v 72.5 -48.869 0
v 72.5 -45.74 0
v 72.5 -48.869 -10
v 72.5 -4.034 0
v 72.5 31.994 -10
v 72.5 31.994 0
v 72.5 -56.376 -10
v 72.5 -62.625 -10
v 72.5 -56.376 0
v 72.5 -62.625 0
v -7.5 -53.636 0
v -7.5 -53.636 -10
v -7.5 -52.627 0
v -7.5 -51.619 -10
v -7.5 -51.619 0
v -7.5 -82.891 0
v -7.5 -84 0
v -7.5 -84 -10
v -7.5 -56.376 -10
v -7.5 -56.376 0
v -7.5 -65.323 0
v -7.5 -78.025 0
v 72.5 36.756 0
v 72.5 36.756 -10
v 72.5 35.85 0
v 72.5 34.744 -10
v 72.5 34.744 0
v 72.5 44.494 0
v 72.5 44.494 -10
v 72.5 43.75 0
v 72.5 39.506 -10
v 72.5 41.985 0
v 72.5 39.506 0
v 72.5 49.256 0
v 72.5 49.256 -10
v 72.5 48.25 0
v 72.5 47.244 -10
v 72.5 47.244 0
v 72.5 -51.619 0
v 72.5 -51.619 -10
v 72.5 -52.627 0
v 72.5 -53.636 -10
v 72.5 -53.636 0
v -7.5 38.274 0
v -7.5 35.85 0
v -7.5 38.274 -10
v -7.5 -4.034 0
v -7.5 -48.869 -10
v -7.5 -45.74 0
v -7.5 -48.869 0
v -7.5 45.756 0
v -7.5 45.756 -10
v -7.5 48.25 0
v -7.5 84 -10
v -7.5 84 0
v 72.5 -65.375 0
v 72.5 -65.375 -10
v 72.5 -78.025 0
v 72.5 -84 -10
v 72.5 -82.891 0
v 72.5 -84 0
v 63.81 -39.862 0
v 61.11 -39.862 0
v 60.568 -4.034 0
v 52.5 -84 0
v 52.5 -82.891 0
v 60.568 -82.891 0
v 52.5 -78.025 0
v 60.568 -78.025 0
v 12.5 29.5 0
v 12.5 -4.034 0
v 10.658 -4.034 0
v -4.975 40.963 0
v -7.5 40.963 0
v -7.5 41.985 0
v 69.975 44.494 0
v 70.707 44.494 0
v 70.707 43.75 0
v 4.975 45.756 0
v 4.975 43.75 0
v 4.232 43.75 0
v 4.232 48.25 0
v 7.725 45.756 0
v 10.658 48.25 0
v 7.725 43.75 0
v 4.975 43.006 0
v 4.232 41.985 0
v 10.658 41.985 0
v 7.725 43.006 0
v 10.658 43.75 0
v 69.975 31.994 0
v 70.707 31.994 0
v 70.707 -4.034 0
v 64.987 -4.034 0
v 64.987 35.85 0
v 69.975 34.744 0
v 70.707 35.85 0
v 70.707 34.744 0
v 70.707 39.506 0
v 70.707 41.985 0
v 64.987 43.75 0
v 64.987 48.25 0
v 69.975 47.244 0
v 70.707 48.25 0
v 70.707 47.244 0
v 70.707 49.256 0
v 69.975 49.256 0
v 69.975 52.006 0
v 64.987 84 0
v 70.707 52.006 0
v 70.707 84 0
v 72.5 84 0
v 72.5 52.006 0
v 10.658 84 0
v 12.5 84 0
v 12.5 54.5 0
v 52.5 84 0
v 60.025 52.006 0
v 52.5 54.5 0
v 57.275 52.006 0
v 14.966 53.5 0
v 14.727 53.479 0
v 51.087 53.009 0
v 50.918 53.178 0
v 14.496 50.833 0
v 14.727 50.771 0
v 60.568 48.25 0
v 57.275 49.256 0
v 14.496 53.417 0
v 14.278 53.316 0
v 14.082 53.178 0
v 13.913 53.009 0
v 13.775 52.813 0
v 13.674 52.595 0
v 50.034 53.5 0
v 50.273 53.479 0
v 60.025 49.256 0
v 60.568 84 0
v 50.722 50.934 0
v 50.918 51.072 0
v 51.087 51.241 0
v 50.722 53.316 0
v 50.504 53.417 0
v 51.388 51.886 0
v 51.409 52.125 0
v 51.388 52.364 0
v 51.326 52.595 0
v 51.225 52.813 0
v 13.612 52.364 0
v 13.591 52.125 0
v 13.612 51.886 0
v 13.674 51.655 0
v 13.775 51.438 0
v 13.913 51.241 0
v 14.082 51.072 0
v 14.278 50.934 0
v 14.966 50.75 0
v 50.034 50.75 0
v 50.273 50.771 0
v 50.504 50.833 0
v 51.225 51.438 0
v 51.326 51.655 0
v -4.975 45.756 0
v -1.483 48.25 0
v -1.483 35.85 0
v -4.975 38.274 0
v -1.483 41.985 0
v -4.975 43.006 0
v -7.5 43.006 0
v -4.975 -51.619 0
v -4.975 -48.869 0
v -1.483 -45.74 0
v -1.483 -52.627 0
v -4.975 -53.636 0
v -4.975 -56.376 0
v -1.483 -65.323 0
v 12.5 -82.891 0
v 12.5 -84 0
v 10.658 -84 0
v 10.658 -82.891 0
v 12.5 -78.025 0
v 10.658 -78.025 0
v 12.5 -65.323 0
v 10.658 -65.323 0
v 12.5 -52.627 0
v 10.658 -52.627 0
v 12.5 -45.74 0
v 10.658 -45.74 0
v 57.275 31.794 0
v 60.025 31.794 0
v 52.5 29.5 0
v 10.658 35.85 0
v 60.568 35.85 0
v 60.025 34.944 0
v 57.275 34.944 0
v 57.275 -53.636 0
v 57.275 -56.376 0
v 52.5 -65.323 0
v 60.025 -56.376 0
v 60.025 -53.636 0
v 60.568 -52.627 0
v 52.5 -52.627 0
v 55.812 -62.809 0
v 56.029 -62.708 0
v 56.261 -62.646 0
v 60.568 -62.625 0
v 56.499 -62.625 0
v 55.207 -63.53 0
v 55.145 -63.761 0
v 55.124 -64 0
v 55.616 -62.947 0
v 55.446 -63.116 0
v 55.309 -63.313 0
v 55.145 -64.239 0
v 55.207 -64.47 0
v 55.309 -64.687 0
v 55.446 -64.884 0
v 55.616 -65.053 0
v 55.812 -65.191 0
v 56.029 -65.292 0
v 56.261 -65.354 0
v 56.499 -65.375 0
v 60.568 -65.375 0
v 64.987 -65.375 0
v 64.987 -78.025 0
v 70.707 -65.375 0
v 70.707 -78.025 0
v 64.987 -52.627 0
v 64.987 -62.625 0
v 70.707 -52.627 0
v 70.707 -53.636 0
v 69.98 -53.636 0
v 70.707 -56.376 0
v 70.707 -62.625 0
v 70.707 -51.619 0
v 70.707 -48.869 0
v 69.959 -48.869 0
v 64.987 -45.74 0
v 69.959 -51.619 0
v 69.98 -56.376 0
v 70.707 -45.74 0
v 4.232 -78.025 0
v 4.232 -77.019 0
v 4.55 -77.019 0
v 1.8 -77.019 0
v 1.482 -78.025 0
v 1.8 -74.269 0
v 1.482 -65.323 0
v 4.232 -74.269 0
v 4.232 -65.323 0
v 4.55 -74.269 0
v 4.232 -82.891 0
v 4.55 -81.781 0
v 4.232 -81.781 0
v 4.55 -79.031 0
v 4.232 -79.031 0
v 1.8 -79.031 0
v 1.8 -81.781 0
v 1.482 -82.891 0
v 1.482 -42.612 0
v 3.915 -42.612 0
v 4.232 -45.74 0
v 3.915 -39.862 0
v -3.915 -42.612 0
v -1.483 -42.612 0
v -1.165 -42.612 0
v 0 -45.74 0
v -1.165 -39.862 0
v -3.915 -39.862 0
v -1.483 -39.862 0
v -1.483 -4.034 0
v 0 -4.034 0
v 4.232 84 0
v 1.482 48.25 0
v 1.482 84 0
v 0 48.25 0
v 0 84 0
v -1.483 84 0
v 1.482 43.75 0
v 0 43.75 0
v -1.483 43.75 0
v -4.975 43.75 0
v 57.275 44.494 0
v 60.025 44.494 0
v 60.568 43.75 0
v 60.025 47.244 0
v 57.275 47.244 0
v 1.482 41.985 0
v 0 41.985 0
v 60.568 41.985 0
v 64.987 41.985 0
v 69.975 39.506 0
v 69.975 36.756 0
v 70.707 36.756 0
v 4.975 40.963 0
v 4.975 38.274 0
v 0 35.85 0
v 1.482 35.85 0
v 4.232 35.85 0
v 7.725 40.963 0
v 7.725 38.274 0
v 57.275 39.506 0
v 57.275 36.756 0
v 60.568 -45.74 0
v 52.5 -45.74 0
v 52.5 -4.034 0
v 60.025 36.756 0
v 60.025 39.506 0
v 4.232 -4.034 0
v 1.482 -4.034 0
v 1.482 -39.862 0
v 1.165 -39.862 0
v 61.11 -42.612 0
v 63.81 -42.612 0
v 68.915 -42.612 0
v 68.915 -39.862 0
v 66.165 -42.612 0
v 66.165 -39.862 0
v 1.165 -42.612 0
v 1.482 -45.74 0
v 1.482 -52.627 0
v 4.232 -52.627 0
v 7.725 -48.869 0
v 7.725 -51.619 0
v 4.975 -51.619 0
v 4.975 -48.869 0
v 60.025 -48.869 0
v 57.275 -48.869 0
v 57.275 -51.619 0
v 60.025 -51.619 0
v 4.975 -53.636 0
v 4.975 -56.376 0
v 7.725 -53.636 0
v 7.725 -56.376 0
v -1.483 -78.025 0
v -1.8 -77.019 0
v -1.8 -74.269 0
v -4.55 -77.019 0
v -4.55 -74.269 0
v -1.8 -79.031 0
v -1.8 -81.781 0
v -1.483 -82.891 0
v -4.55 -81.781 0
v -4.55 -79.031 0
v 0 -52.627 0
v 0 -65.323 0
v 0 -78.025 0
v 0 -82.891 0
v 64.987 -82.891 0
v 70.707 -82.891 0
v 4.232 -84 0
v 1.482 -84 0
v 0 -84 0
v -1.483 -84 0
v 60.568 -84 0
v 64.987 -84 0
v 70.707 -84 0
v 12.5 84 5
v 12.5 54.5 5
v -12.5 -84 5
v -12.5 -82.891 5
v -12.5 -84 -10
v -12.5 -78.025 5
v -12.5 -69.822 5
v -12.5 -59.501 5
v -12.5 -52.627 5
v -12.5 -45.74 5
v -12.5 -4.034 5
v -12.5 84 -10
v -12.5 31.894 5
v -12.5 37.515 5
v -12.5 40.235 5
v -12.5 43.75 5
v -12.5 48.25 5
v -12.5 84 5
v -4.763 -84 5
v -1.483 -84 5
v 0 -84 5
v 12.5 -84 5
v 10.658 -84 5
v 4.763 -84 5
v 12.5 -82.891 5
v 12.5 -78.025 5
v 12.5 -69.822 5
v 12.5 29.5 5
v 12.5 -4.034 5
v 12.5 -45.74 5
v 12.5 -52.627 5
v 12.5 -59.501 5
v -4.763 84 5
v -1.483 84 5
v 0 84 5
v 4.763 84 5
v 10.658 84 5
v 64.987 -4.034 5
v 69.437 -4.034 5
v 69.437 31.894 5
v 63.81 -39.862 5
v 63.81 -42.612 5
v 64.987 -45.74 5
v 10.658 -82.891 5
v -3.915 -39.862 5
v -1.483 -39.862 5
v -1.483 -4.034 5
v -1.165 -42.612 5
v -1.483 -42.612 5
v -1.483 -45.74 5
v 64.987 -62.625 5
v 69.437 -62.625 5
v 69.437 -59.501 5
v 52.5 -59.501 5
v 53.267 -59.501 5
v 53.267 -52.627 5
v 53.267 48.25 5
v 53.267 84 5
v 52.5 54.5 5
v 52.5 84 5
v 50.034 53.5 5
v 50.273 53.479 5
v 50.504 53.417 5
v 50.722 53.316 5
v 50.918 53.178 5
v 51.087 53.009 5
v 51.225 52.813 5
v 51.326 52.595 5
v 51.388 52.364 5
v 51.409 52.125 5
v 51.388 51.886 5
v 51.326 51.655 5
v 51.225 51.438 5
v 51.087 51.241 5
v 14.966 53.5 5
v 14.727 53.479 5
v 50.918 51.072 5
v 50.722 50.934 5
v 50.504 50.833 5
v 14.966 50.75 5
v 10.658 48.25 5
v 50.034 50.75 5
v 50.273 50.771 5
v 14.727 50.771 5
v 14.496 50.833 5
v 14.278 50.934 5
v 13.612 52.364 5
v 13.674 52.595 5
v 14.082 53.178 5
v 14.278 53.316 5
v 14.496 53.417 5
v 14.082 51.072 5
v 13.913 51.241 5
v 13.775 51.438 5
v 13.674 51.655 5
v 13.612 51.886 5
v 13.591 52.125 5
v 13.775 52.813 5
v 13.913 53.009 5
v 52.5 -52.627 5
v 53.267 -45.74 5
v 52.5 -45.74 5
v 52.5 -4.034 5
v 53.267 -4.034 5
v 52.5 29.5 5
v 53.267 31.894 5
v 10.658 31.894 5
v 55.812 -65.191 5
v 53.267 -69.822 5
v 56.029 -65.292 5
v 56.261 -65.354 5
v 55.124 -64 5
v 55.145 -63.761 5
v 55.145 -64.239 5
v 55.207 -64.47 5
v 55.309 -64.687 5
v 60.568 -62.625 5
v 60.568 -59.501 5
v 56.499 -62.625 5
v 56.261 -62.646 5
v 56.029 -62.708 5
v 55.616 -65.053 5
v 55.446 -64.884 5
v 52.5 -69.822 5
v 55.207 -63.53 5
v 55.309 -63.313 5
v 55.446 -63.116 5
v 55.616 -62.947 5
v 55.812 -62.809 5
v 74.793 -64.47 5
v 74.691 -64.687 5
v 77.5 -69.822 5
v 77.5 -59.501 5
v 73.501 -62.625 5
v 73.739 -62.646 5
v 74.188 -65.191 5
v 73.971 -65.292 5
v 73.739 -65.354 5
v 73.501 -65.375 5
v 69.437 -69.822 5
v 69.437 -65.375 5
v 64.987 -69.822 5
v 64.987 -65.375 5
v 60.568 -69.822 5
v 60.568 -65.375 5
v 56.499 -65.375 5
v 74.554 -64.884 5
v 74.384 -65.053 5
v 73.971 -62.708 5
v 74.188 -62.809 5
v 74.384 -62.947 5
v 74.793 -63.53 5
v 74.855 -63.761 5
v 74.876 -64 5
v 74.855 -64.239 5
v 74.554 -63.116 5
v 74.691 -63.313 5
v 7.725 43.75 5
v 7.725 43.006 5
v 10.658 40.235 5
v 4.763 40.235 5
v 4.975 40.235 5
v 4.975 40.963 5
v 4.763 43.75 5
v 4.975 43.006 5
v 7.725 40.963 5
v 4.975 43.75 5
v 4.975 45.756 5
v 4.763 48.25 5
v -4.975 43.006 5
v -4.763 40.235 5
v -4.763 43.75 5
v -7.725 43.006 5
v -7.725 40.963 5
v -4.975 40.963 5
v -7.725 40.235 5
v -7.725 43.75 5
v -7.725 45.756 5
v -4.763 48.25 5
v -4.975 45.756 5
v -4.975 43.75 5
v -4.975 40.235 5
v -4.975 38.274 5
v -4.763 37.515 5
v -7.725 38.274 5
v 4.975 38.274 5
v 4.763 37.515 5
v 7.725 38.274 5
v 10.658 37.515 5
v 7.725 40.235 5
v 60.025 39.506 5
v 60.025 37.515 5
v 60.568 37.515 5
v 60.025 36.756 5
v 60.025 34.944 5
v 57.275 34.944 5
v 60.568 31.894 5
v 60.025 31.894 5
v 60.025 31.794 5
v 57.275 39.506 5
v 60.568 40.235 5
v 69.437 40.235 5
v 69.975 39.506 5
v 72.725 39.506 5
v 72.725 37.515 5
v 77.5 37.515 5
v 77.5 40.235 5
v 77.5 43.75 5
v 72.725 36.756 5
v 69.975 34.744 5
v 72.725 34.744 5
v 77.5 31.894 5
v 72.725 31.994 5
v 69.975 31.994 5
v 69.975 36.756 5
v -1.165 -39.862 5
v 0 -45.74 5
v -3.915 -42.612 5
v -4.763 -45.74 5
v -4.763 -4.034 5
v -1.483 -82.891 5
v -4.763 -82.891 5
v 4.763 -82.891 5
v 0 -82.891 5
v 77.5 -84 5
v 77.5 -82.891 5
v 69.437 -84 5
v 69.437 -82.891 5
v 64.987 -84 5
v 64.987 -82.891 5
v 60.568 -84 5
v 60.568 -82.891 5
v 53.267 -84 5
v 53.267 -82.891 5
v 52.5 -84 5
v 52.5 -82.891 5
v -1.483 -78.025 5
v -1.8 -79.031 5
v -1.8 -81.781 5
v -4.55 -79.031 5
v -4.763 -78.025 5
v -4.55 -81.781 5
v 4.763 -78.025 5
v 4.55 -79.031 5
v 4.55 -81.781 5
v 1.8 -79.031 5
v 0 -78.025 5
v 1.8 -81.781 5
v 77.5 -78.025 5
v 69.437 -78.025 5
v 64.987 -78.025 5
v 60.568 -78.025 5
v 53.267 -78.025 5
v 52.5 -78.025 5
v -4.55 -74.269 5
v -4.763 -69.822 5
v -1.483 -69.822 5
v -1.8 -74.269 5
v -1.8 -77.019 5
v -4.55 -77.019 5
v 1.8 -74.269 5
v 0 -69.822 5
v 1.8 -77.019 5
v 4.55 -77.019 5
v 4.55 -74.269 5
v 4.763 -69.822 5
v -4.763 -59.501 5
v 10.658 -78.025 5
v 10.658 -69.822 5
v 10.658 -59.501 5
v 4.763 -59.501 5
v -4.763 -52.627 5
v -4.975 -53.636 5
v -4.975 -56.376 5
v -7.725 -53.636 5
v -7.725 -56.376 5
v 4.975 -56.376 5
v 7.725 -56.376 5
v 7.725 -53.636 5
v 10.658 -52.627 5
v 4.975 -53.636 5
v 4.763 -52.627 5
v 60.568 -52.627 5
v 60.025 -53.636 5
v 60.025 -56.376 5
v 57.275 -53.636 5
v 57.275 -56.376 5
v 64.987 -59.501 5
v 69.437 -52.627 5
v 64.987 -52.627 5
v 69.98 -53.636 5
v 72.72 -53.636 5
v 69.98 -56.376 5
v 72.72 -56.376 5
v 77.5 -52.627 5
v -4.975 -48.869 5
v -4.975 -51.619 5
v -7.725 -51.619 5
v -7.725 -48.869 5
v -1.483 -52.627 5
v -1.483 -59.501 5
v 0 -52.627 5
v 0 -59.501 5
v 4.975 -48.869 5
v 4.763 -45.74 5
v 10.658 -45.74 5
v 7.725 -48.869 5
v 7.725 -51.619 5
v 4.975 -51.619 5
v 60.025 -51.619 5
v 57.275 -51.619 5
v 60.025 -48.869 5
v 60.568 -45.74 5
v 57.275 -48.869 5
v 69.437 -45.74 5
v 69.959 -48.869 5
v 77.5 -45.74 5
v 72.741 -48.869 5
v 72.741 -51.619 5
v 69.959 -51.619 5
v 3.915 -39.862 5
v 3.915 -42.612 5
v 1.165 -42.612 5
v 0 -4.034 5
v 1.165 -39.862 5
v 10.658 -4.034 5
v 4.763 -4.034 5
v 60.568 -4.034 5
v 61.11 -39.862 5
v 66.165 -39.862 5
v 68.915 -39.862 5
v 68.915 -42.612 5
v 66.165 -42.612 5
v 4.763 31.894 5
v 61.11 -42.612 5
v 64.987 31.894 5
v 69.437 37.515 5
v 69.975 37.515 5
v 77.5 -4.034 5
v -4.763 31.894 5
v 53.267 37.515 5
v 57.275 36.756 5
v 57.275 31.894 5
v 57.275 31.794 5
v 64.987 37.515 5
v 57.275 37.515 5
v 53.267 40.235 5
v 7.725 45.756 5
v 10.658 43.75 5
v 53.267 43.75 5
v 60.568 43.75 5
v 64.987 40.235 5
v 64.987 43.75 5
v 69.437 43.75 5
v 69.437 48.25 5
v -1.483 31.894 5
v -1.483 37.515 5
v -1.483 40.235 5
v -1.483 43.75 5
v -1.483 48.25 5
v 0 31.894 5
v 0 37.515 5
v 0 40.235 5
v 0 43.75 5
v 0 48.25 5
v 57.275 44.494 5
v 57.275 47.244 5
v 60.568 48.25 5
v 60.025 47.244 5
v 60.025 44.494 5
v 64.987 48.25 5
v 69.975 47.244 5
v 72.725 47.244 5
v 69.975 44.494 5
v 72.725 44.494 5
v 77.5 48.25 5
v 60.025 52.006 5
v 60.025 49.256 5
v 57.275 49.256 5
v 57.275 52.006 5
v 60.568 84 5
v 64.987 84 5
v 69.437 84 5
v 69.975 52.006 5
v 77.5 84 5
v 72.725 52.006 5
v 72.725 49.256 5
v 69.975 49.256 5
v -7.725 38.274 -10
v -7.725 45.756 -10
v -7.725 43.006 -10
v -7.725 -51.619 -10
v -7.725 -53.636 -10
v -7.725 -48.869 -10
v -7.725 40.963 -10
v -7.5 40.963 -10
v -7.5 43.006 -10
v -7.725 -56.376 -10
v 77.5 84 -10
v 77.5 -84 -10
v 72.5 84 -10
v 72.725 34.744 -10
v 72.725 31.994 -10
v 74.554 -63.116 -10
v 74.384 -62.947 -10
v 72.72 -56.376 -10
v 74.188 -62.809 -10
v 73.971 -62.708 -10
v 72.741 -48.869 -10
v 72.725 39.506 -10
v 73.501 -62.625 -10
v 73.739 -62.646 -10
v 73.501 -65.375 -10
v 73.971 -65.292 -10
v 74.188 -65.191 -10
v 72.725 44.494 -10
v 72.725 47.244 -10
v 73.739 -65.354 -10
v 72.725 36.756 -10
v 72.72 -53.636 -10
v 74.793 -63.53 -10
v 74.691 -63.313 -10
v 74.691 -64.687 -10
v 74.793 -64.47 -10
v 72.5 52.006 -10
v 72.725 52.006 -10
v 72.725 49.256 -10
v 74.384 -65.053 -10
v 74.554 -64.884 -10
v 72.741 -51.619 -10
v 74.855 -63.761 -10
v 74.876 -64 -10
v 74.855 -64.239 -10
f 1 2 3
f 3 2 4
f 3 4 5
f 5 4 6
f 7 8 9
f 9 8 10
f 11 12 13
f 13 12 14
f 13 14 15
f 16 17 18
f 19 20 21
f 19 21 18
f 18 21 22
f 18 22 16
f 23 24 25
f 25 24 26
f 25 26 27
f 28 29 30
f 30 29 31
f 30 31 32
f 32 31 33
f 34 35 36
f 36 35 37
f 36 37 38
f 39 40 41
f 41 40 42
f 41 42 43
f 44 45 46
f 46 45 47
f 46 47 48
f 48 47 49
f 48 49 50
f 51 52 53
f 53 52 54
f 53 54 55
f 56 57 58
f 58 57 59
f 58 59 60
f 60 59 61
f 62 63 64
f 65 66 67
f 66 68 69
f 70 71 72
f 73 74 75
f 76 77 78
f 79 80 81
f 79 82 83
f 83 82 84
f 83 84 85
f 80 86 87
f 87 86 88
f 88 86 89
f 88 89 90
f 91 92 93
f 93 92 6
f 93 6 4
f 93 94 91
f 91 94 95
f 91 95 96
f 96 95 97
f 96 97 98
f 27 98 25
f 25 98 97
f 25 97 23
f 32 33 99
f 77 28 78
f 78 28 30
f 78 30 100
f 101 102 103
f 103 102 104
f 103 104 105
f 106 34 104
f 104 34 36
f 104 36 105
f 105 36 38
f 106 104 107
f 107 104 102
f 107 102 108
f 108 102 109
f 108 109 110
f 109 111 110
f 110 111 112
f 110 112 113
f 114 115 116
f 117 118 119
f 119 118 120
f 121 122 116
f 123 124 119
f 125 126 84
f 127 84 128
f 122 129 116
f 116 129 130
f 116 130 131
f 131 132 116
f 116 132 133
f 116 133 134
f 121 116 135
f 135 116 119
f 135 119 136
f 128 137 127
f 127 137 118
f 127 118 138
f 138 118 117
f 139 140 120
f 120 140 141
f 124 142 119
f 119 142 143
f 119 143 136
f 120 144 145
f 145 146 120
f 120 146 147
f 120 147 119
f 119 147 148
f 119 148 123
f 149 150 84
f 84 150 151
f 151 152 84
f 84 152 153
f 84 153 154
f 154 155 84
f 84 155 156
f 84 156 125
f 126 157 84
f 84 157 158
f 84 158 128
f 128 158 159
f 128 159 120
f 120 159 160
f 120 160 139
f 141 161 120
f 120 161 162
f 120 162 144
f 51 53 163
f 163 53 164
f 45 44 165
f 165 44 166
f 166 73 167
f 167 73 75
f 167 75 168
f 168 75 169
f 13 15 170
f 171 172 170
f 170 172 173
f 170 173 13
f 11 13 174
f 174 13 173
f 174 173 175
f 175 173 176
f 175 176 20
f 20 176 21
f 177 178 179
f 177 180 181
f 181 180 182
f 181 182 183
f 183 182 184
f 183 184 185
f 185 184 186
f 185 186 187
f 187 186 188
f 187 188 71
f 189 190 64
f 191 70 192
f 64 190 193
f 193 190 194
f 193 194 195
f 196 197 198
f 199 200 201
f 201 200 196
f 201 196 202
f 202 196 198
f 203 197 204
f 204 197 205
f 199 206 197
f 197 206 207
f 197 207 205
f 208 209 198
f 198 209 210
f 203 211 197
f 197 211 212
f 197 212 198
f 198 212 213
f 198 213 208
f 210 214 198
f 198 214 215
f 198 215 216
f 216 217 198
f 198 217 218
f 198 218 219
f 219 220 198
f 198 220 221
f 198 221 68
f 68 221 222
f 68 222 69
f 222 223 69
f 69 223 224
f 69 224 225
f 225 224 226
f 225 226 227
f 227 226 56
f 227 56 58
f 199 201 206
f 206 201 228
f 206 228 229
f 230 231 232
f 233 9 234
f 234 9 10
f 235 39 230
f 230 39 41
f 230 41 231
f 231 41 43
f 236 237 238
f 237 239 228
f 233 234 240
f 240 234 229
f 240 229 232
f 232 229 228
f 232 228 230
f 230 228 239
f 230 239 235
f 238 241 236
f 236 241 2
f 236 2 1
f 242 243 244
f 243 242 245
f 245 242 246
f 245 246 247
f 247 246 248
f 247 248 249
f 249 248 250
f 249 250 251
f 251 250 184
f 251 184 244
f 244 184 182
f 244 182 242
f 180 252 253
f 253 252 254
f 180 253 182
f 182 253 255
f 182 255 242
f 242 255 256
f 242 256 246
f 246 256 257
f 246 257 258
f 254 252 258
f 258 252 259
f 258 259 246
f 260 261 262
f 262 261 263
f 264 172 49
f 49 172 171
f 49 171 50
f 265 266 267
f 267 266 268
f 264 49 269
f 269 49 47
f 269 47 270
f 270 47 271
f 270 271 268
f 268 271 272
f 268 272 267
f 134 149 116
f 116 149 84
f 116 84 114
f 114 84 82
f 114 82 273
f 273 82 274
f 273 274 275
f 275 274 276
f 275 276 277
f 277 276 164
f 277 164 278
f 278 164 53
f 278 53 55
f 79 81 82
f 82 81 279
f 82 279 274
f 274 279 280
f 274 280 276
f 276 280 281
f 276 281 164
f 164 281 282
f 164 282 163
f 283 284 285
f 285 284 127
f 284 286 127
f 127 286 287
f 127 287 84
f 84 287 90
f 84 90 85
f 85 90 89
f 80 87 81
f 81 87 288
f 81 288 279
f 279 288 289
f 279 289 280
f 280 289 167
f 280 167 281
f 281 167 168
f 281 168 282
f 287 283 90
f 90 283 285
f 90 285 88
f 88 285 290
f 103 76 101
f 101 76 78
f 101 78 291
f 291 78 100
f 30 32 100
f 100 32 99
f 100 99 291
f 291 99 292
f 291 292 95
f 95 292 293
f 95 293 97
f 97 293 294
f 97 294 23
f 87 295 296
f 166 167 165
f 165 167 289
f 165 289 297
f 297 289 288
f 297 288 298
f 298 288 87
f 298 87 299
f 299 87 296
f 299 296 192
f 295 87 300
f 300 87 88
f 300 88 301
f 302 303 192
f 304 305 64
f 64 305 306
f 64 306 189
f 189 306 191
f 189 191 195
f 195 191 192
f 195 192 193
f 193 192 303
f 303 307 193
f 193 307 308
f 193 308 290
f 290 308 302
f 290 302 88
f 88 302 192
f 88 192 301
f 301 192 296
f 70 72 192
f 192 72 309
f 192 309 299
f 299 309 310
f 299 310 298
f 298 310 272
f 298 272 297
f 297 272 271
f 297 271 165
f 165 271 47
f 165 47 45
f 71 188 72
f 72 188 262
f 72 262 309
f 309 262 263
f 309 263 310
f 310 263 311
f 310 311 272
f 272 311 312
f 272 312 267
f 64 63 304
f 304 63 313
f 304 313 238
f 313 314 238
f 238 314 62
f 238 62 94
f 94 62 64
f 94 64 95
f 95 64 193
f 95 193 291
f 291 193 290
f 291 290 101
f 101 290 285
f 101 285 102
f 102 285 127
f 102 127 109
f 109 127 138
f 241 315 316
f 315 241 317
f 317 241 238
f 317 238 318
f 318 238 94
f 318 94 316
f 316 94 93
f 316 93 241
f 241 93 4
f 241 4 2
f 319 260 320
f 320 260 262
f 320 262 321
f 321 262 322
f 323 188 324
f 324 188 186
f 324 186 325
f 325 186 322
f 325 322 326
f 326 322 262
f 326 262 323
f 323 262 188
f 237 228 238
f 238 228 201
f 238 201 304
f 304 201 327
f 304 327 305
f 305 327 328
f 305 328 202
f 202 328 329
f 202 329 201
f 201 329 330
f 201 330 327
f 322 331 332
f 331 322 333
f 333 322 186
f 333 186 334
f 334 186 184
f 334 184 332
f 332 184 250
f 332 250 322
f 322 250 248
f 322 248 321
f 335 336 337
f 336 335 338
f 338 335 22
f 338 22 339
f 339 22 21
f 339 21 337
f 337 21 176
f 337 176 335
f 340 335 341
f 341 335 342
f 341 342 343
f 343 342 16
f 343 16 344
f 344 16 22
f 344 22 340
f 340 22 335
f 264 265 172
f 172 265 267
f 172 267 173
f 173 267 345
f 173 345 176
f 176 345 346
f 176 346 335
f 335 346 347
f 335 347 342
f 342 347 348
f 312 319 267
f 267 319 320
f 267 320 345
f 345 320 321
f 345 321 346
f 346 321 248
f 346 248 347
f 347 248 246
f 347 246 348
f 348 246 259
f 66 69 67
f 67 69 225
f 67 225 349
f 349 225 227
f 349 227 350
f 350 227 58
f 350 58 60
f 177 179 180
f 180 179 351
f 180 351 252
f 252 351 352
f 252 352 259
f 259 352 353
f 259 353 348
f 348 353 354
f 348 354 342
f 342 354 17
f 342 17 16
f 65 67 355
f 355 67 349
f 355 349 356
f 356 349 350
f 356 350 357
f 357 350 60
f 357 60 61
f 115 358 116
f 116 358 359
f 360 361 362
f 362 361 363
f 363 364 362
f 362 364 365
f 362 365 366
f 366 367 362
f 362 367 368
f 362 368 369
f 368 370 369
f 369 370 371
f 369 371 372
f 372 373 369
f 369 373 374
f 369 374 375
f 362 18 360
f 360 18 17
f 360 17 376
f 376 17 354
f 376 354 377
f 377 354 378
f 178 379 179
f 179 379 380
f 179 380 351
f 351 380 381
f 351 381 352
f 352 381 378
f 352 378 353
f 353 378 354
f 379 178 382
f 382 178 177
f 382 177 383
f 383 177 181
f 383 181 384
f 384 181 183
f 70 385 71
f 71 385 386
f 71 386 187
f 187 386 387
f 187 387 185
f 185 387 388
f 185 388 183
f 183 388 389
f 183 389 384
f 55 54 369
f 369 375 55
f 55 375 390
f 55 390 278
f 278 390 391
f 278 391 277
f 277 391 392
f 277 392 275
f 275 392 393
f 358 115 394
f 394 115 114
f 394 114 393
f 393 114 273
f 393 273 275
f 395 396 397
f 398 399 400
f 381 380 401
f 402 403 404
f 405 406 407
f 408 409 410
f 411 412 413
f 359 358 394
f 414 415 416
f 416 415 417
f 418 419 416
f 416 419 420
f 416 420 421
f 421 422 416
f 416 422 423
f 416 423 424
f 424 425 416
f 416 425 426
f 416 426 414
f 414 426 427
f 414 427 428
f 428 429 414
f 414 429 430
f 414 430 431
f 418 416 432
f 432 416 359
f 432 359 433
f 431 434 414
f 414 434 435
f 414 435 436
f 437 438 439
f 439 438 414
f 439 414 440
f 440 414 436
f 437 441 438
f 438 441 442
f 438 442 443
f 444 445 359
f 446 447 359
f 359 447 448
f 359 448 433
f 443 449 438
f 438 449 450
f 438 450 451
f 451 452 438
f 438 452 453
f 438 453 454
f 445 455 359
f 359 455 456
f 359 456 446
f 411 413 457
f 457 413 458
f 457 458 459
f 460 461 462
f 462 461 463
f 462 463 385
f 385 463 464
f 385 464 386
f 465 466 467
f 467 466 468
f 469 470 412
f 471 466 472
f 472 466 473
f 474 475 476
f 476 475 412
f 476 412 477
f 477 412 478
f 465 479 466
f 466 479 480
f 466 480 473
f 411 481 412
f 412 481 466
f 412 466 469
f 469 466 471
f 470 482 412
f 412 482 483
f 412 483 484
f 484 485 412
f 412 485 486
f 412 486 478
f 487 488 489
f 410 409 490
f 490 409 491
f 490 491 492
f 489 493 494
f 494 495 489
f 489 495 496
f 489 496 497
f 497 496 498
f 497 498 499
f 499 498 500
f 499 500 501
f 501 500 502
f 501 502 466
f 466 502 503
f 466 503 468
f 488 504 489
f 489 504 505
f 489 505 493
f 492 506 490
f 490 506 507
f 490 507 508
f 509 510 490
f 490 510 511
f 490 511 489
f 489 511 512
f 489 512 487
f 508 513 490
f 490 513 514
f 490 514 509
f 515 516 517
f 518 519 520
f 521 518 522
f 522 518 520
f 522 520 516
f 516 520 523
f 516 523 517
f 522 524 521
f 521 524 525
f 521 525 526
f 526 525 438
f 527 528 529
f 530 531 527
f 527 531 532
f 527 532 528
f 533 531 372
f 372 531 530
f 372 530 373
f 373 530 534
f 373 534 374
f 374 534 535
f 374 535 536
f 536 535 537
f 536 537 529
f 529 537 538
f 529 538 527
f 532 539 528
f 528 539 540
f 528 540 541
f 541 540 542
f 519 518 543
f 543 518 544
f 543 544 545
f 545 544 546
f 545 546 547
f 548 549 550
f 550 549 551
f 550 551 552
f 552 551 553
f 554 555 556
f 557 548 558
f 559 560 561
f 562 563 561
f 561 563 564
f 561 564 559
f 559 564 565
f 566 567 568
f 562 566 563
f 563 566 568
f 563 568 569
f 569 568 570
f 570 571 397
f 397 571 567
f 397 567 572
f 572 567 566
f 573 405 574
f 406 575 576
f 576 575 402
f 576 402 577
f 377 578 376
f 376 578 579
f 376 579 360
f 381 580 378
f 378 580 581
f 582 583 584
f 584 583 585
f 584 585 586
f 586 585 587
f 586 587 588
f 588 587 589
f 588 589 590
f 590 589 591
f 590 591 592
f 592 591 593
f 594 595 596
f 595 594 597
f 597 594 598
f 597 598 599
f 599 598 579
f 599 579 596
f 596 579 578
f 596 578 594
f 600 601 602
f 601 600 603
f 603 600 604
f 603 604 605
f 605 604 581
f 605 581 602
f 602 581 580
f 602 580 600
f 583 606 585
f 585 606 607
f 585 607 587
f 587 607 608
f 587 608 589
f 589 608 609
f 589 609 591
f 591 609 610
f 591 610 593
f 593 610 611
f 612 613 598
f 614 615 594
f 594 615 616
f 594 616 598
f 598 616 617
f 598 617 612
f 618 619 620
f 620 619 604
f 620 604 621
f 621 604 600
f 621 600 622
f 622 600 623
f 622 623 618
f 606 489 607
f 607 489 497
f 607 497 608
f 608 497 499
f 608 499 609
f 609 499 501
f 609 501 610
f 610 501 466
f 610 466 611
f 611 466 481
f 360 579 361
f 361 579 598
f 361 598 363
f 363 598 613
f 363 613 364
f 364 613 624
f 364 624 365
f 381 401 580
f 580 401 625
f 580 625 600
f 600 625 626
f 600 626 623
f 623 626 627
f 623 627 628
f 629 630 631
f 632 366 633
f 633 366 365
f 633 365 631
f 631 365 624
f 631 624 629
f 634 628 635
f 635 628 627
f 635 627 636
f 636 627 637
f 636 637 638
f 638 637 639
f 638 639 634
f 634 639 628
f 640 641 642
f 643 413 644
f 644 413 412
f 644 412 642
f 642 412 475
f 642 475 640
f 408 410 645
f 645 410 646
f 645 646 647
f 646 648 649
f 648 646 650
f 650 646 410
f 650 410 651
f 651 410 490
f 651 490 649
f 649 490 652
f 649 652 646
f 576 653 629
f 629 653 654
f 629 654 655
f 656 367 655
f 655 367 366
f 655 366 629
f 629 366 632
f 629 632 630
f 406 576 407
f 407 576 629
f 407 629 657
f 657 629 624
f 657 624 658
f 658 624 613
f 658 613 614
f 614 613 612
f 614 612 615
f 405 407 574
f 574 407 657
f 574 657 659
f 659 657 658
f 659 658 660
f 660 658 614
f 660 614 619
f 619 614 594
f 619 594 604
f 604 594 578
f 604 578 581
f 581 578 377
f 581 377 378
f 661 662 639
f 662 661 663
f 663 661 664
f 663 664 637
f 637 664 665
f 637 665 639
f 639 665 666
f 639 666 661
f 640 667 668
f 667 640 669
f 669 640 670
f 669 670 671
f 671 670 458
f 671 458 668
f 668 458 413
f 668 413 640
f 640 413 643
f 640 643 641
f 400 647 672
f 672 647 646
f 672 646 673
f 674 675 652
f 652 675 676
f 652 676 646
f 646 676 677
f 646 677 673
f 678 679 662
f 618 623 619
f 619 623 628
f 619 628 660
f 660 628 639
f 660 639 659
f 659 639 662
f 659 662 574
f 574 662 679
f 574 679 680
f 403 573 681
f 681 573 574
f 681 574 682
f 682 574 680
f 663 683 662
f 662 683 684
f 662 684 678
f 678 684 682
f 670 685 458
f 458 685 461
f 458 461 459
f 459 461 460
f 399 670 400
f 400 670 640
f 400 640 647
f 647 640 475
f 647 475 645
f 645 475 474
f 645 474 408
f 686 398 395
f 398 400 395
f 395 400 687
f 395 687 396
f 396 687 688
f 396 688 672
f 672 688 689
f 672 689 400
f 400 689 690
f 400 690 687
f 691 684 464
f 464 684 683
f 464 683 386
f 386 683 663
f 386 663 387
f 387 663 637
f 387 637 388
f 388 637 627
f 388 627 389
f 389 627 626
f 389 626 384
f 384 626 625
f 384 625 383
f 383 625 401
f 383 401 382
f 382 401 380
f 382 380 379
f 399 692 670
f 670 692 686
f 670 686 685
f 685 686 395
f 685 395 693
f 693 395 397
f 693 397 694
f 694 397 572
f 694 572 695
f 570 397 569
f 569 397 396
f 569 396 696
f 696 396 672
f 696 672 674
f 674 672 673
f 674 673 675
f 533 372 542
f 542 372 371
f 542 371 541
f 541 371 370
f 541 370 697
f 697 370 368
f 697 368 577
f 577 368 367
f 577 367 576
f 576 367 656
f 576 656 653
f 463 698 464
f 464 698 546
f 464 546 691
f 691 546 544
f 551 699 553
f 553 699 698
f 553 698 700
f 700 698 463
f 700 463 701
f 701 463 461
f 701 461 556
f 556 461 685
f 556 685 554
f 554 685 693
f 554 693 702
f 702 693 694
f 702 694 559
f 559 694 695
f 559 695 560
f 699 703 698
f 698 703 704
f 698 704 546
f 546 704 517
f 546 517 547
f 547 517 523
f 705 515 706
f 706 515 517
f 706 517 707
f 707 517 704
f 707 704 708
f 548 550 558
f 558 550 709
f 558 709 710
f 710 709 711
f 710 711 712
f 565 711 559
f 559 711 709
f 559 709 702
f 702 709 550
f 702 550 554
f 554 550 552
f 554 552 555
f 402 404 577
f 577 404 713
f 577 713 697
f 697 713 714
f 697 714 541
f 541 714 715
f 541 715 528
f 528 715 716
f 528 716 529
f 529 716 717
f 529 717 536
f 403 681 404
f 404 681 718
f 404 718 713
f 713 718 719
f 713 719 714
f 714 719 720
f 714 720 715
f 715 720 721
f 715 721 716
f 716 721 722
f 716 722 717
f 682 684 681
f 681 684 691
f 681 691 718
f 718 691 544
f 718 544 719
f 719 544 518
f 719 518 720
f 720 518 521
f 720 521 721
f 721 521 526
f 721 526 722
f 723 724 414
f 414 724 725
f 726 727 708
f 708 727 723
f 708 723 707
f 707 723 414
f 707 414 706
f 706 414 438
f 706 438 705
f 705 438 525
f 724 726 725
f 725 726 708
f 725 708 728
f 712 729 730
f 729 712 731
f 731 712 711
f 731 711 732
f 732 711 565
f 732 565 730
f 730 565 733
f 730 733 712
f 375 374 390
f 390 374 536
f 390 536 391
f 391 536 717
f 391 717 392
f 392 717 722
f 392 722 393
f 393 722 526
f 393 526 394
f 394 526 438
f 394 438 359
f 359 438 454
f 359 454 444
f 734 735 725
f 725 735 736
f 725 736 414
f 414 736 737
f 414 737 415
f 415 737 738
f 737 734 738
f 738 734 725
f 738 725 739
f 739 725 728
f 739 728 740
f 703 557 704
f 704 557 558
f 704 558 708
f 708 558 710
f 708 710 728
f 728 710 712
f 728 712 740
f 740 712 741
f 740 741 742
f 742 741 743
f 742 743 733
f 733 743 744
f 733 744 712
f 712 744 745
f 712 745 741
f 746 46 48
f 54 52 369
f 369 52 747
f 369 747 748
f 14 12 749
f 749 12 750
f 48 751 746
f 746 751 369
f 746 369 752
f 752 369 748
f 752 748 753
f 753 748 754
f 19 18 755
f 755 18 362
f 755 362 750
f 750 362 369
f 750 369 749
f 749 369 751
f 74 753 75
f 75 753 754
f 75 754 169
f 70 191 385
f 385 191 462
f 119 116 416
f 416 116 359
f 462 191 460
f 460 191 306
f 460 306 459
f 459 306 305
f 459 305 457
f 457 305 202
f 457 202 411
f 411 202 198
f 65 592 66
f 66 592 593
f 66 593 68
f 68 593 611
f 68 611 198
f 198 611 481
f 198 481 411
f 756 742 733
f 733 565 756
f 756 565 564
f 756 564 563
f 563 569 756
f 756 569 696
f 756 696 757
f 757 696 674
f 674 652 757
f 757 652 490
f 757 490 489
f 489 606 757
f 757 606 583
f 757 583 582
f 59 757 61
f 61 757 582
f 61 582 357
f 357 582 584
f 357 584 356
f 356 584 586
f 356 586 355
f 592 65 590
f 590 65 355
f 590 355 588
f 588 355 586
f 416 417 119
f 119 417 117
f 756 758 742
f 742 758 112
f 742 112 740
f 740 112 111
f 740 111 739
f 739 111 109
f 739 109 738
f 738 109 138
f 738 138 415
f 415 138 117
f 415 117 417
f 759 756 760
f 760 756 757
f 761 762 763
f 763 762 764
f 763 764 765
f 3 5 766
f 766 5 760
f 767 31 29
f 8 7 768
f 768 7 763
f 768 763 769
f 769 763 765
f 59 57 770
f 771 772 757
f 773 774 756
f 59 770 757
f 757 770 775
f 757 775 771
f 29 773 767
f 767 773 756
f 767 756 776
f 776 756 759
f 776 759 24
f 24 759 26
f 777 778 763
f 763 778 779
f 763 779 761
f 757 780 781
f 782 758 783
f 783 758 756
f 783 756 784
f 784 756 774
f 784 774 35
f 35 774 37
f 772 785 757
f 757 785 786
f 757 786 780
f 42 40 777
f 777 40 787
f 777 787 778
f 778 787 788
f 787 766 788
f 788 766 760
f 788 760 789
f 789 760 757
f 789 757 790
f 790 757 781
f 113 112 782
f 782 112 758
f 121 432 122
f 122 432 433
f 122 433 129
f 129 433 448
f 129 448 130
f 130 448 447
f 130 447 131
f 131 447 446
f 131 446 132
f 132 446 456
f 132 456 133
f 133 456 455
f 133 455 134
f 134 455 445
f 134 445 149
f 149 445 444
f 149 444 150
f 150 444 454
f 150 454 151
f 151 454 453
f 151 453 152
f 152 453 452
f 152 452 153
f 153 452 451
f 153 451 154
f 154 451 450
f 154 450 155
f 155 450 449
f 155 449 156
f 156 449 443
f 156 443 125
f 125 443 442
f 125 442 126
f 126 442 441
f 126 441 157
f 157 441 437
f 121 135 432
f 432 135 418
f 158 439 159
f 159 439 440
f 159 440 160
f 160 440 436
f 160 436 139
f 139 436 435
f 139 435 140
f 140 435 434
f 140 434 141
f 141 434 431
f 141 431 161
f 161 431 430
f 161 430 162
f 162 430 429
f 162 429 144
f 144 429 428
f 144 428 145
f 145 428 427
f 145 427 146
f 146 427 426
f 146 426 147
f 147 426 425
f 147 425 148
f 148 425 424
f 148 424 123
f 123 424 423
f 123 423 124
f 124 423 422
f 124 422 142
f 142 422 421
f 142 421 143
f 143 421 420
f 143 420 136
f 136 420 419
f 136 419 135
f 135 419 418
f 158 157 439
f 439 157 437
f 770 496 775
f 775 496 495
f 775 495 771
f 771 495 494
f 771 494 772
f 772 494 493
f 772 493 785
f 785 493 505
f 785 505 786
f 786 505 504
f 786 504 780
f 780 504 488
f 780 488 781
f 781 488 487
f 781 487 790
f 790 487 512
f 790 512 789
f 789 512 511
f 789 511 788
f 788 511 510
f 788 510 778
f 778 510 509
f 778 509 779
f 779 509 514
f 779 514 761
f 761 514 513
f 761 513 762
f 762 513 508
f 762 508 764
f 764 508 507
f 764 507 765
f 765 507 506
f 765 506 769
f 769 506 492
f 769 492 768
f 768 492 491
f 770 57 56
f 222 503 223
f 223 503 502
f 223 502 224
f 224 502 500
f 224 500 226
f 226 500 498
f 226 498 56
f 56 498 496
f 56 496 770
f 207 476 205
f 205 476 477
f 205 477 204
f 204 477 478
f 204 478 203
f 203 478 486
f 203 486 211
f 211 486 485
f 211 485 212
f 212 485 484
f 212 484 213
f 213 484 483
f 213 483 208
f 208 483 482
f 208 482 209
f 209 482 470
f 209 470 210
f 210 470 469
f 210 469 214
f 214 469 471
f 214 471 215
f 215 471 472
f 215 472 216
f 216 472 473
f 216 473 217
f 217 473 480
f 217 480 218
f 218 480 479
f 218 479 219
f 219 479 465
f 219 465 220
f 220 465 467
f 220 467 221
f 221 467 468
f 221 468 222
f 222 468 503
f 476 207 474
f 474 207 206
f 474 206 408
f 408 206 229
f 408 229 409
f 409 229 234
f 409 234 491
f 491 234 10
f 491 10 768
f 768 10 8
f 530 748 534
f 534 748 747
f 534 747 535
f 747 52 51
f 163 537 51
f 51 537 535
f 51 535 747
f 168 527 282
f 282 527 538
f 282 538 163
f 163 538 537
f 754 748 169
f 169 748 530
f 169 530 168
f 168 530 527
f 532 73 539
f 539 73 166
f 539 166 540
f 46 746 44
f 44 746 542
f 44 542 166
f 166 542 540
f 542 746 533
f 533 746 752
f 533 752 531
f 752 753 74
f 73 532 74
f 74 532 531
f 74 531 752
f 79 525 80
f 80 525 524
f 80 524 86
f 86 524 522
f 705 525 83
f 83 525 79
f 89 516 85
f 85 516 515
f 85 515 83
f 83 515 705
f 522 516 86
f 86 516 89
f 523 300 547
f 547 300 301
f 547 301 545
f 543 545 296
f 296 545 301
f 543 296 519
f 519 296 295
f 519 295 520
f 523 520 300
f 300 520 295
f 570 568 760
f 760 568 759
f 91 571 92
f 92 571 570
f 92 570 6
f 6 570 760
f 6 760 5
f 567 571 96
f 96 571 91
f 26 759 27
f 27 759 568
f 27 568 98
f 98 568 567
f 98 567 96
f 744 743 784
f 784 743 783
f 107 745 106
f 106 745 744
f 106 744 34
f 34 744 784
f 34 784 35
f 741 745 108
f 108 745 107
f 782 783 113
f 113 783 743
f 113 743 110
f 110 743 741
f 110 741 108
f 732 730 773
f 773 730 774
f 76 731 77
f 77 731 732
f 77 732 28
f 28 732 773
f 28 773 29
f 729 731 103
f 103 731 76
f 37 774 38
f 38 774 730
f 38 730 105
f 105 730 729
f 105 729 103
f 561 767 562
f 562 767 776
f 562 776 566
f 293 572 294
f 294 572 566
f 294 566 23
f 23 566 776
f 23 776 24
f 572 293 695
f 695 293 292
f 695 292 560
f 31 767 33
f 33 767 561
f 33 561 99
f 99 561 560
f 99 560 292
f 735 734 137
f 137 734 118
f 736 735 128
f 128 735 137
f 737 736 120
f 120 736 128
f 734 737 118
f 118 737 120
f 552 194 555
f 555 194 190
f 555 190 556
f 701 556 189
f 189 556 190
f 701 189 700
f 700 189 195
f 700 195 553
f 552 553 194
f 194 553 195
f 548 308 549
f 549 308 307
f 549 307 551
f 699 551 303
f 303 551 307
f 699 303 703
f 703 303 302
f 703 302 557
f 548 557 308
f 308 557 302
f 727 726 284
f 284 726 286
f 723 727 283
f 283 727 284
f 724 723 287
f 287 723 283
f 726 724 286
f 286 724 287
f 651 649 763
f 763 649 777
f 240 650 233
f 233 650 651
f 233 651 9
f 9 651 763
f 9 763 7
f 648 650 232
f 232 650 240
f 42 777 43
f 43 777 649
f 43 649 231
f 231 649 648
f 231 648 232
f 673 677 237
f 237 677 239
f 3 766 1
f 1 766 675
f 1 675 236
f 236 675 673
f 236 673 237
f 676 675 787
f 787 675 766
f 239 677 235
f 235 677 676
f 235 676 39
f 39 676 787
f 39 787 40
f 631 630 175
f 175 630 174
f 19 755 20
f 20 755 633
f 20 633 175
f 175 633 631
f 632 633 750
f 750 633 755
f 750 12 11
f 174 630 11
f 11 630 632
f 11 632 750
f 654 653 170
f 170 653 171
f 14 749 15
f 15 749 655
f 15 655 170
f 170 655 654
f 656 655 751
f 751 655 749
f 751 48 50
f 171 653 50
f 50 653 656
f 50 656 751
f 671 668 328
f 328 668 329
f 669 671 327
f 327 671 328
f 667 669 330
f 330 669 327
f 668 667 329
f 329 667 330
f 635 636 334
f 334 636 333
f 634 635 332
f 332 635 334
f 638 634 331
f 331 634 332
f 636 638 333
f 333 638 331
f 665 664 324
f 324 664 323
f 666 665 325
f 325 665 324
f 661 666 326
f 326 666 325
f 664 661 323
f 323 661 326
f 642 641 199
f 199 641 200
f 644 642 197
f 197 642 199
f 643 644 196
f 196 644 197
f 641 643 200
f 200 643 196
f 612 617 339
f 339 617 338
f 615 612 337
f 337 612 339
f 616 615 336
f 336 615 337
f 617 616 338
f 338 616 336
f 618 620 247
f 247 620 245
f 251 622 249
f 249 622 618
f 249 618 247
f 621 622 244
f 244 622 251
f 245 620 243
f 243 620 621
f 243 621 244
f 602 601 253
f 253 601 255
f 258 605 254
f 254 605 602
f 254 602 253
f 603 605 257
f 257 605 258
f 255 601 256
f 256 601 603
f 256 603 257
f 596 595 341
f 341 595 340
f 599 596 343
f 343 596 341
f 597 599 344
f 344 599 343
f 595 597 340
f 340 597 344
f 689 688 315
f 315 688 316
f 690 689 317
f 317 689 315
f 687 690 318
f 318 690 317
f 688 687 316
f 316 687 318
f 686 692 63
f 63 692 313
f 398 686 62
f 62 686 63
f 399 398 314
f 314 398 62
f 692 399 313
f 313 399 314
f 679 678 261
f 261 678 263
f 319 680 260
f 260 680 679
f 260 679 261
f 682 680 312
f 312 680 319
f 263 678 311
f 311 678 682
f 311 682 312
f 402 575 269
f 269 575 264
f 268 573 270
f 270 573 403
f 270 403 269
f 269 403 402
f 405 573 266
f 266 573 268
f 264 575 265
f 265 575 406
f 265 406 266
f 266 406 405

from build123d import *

# Parameters (mm, degrees)
SKETCH2_W           = 25
SKETCH2_H           = 168
BOSS_EXTRUDE1_DEPTH = 5
SKETCH3_W           = 10
SKETCH3_H           = 168
BOSS_EXTRUDE2_DEPTH = 5
SKETCH4_W           = 40
SKETCH4_H           = 25
BOSS_EXTRUDE3_DEPTH = 5
SKETCH5_W           = 25
SKETCH5_H           = 168
BOSS_EXTRUDE4_DEPTH = 5
SKETCH6_W           = 10
SKETCH6_H           = 168
BOSS_EXTRUDE5_DEPTH = 5
CUT_EXTRUDE1_DEPTH  = 5
CUT_EXTRUDE2_DEPTH  = 20
SKETCH9_W           = 2.75
SKETCH9_H           = 2.75
SKETCH9_H_2         = 2.689417066
CUT_EXTRUDE3_DEPTH  = 20
SKETCH10_W          = 2.75
SKETCH10_H          = 2.75
SKETCH10_H_2        = 3.15
CUT_EXTRUDE4_DEPTH  = 20
SKETCH11_W          = 2.75
SKETCH11_H          = 2.75
SKETCH11_W_2        = 2.782071424
SKETCH11_W_3        = 2.74
SKETCH11_H_2        = 2.74
CUT_EXTRUDE5_DEPTH  = 20
SKETCH12_W          = 2.75
SKETCH12_H          = 2.75
CUT_EXTRUDE6_DEPTH  = 20
SKETCH13_W          = 2.75
SKETCH13_H          = 2.75
SKETCH13_W_2        = 2.699527024
CUT_EXTRUDE7_DEPTH  = 20


with BuildPart() as part:
    # Sketch2 → Boss-Extrude1 (new body)
    with BuildSketch(Plane.XY):
        Rectangle(SKETCH2_W, SKETCH2_H)
    extrude(amount=BOSS_EXTRUDE1_DEPTH)

    # Sketch3 → Boss-Extrude2 (add)
    with BuildSketch(Plane.ZY.offset(12.5)):
        with Locations((-5, 0)):
            Rectangle(SKETCH3_W, SKETCH3_H)
    extrude(amount=-BOSS_EXTRUDE2_DEPTH)

    # Sketch4 → Boss-Extrude3 (add)
    with BuildSketch(Plane.XY.offset(5)):
        with Locations((32.5, 42)):
            Rectangle(SKETCH4_W, SKETCH4_H)
    extrude(amount=-BOSS_EXTRUDE3_DEPTH)

    # Sketch5 → Boss-Extrude4 (add)
    with BuildSketch(Plane.XY.offset(5)):
        with Locations((65, 0)):
            Rectangle(SKETCH5_W, SKETCH5_H)
    extrude(amount=-BOSS_EXTRUDE4_DEPTH)

    # Sketch6 → Boss-Extrude5 (add)
    with BuildSketch(Plane(origin=(77.5, 0, 0), x_dir=(0, 0, -1), z_dir=(1, 0, 0))):
        with Locations((5, 0)):
            Rectangle(SKETCH6_W, SKETCH6_H)
    extrude(amount=-BOSS_EXTRUDE5_DEPTH)

    # Sketch7 → Cut-Extrude1 (cut)
    with BuildSketch(Plane.XY.offset(5)):
        with BuildLine():
            Line((14.965887672, 53.5), (50.034112328, 53.5))
            ThreePointArc((50.034112328, 53.5), (51.409112328, 52.125), (50.034112328, 50.75))
            Line((50.034112328, 50.75), (14.965887672, 50.75))
            ThreePointArc((14.965887672, 50.75), (13.590887672, 52.125), (14.965887672, 53.5))
        make_face()
    extrude(amount=-CUT_EXTRUDE1_DEPTH, mode=Mode.SUBTRACT)

    # Sketch8 → Cut-Extrude2 (cut)
    with BuildSketch(Plane.XY.offset(5)):
        with BuildLine():
            Line((73.500571176, -65.375), (56.499428824, -65.375))
            ThreePointArc((56.499428824, -65.375), (55.124428824, -64), (56.499428824, -62.625))
            Line((56.499428824, -62.625), (73.500571176, -62.625))
            ThreePointArc((73.500571176, -62.625), (74.875571176, -64), (73.500571176, -65.375))
        make_face()
    extrude(amount=-CUT_EXTRUDE2_DEPTH, mode=Mode.SUBTRACT)

    # Sketch9 → Cut-Extrude3 (cut)
    with BuildSketch(Plane.XY.offset(5)):
        with Locations((6.35, 44.38125)):
            Rectangle(SKETCH9_W, SKETCH9_H)
        with Locations((-6.35, 44.38125)):
            Rectangle(SKETCH9_W, SKETCH9_H)
        with Locations((-6.35, 39.61875)):
            Rectangle(SKETCH9_W, SKETCH9_H_2)
        with Locations((6.35, 39.61875)):
            Rectangle(SKETCH9_W, SKETCH9_H_2)
    extrude(amount=-CUT_EXTRUDE3_DEPTH, mode=Mode.SUBTRACT)

    # Sketch10 → Cut-Extrude4 (cut)
    with BuildSketch(Plane.XY.offset(5)):
        with Locations((58.65, 50.63125)):
            Rectangle(SKETCH10_W, SKETCH10_H)
        with Locations((71.35, 50.63125)):
            Rectangle(SKETCH10_W, SKETCH10_H)
        with Locations((58.65, 45.86875)):
            Rectangle(SKETCH10_W, SKETCH10_H)
        with Locations((71.35, 45.86875)):
            Rectangle(SKETCH10_W, SKETCH10_H)
        with Locations((71.35, 38.13125)):
            Rectangle(SKETCH10_W, SKETCH10_H)
        with Locations((58.65, 38.13125)):
            Rectangle(SKETCH10_W, SKETCH10_H)
        with Locations((58.65, 33.36875)):
            Rectangle(SKETCH10_W, SKETCH10_H_2)
        with Locations((71.35, 33.36875)):
            Rectangle(SKETCH10_W, SKETCH10_H)
    extrude(amount=-CUT_EXTRUDE4_DEPTH, mode=Mode.SUBTRACT)

    # Sketch11 → Cut-Extrude5 (cut)
    with BuildSketch(Plane.XY.offset(5)):
        with Locations((58.65, -50.24375)):
            Rectangle(SKETCH11_W, SKETCH11_H)
        with Locations((71.35, -50.24375)):
            Rectangle(SKETCH11_W_2, SKETCH11_H)
        with Locations((71.35, -55.00625)):
            Rectangle(SKETCH11_W_3, SKETCH11_H_2)
        with Locations((58.65, -55.00625)):
            Rectangle(SKETCH11_W, SKETCH11_H_2)
        with Locations((-6.35, -50.24375)):
            Rectangle(SKETCH11_W, SKETCH11_H)
        with Locations((6.35, -50.24375)):
            Rectangle(SKETCH11_W, SKETCH11_H)
        with Locations((6.35, -55.00625)):
            Rectangle(SKETCH11_W, SKETCH11_H_2)
        with Locations((-6.35, -55.00625)):
            Rectangle(SKETCH11_W, SKETCH11_H_2)
    extrude(amount=-CUT_EXTRUDE5_DEPTH, mode=Mode.SUBTRACT)

    # Sketch12 → Cut-Extrude6 (cut)
    with BuildSketch(Plane.XY.offset(5)):
        with Locations((-3.175, -75.643809518)):
            Rectangle(SKETCH12_W, SKETCH12_H)
        with Locations((3.175, -75.643809518)):
            Rectangle(SKETCH12_W, SKETCH12_H)
        with Locations((3.175, -80.406309518)):
            Rectangle(SKETCH12_W, SKETCH12_H)
        with Locations((-3.175, -80.406309518)):
            Rectangle(SKETCH12_W, SKETCH12_H)
    extrude(amount=-CUT_EXTRUDE6_DEPTH, mode=Mode.SUBTRACT)

    # Sketch13 → Cut-Extrude7 (cut)
    with BuildSketch(Plane.XY.offset(5)):
        with Locations((-2.54, -41.237096808)):
            Rectangle(SKETCH13_W, SKETCH13_H)
        with Locations((2.54, -41.237096808)):
            Rectangle(SKETCH13_W, SKETCH13_H)
        with Locations((62.46, -41.237096808)):
            Rectangle(SKETCH13_W_2, SKETCH13_H)
        with Locations((67.54, -41.237096808)):
            Rectangle(SKETCH13_W, SKETCH13_H)
    extrude(amount=-CUT_EXTRUDE7_DEPTH, mode=Mode.SUBTRACT)


solid = part.part
